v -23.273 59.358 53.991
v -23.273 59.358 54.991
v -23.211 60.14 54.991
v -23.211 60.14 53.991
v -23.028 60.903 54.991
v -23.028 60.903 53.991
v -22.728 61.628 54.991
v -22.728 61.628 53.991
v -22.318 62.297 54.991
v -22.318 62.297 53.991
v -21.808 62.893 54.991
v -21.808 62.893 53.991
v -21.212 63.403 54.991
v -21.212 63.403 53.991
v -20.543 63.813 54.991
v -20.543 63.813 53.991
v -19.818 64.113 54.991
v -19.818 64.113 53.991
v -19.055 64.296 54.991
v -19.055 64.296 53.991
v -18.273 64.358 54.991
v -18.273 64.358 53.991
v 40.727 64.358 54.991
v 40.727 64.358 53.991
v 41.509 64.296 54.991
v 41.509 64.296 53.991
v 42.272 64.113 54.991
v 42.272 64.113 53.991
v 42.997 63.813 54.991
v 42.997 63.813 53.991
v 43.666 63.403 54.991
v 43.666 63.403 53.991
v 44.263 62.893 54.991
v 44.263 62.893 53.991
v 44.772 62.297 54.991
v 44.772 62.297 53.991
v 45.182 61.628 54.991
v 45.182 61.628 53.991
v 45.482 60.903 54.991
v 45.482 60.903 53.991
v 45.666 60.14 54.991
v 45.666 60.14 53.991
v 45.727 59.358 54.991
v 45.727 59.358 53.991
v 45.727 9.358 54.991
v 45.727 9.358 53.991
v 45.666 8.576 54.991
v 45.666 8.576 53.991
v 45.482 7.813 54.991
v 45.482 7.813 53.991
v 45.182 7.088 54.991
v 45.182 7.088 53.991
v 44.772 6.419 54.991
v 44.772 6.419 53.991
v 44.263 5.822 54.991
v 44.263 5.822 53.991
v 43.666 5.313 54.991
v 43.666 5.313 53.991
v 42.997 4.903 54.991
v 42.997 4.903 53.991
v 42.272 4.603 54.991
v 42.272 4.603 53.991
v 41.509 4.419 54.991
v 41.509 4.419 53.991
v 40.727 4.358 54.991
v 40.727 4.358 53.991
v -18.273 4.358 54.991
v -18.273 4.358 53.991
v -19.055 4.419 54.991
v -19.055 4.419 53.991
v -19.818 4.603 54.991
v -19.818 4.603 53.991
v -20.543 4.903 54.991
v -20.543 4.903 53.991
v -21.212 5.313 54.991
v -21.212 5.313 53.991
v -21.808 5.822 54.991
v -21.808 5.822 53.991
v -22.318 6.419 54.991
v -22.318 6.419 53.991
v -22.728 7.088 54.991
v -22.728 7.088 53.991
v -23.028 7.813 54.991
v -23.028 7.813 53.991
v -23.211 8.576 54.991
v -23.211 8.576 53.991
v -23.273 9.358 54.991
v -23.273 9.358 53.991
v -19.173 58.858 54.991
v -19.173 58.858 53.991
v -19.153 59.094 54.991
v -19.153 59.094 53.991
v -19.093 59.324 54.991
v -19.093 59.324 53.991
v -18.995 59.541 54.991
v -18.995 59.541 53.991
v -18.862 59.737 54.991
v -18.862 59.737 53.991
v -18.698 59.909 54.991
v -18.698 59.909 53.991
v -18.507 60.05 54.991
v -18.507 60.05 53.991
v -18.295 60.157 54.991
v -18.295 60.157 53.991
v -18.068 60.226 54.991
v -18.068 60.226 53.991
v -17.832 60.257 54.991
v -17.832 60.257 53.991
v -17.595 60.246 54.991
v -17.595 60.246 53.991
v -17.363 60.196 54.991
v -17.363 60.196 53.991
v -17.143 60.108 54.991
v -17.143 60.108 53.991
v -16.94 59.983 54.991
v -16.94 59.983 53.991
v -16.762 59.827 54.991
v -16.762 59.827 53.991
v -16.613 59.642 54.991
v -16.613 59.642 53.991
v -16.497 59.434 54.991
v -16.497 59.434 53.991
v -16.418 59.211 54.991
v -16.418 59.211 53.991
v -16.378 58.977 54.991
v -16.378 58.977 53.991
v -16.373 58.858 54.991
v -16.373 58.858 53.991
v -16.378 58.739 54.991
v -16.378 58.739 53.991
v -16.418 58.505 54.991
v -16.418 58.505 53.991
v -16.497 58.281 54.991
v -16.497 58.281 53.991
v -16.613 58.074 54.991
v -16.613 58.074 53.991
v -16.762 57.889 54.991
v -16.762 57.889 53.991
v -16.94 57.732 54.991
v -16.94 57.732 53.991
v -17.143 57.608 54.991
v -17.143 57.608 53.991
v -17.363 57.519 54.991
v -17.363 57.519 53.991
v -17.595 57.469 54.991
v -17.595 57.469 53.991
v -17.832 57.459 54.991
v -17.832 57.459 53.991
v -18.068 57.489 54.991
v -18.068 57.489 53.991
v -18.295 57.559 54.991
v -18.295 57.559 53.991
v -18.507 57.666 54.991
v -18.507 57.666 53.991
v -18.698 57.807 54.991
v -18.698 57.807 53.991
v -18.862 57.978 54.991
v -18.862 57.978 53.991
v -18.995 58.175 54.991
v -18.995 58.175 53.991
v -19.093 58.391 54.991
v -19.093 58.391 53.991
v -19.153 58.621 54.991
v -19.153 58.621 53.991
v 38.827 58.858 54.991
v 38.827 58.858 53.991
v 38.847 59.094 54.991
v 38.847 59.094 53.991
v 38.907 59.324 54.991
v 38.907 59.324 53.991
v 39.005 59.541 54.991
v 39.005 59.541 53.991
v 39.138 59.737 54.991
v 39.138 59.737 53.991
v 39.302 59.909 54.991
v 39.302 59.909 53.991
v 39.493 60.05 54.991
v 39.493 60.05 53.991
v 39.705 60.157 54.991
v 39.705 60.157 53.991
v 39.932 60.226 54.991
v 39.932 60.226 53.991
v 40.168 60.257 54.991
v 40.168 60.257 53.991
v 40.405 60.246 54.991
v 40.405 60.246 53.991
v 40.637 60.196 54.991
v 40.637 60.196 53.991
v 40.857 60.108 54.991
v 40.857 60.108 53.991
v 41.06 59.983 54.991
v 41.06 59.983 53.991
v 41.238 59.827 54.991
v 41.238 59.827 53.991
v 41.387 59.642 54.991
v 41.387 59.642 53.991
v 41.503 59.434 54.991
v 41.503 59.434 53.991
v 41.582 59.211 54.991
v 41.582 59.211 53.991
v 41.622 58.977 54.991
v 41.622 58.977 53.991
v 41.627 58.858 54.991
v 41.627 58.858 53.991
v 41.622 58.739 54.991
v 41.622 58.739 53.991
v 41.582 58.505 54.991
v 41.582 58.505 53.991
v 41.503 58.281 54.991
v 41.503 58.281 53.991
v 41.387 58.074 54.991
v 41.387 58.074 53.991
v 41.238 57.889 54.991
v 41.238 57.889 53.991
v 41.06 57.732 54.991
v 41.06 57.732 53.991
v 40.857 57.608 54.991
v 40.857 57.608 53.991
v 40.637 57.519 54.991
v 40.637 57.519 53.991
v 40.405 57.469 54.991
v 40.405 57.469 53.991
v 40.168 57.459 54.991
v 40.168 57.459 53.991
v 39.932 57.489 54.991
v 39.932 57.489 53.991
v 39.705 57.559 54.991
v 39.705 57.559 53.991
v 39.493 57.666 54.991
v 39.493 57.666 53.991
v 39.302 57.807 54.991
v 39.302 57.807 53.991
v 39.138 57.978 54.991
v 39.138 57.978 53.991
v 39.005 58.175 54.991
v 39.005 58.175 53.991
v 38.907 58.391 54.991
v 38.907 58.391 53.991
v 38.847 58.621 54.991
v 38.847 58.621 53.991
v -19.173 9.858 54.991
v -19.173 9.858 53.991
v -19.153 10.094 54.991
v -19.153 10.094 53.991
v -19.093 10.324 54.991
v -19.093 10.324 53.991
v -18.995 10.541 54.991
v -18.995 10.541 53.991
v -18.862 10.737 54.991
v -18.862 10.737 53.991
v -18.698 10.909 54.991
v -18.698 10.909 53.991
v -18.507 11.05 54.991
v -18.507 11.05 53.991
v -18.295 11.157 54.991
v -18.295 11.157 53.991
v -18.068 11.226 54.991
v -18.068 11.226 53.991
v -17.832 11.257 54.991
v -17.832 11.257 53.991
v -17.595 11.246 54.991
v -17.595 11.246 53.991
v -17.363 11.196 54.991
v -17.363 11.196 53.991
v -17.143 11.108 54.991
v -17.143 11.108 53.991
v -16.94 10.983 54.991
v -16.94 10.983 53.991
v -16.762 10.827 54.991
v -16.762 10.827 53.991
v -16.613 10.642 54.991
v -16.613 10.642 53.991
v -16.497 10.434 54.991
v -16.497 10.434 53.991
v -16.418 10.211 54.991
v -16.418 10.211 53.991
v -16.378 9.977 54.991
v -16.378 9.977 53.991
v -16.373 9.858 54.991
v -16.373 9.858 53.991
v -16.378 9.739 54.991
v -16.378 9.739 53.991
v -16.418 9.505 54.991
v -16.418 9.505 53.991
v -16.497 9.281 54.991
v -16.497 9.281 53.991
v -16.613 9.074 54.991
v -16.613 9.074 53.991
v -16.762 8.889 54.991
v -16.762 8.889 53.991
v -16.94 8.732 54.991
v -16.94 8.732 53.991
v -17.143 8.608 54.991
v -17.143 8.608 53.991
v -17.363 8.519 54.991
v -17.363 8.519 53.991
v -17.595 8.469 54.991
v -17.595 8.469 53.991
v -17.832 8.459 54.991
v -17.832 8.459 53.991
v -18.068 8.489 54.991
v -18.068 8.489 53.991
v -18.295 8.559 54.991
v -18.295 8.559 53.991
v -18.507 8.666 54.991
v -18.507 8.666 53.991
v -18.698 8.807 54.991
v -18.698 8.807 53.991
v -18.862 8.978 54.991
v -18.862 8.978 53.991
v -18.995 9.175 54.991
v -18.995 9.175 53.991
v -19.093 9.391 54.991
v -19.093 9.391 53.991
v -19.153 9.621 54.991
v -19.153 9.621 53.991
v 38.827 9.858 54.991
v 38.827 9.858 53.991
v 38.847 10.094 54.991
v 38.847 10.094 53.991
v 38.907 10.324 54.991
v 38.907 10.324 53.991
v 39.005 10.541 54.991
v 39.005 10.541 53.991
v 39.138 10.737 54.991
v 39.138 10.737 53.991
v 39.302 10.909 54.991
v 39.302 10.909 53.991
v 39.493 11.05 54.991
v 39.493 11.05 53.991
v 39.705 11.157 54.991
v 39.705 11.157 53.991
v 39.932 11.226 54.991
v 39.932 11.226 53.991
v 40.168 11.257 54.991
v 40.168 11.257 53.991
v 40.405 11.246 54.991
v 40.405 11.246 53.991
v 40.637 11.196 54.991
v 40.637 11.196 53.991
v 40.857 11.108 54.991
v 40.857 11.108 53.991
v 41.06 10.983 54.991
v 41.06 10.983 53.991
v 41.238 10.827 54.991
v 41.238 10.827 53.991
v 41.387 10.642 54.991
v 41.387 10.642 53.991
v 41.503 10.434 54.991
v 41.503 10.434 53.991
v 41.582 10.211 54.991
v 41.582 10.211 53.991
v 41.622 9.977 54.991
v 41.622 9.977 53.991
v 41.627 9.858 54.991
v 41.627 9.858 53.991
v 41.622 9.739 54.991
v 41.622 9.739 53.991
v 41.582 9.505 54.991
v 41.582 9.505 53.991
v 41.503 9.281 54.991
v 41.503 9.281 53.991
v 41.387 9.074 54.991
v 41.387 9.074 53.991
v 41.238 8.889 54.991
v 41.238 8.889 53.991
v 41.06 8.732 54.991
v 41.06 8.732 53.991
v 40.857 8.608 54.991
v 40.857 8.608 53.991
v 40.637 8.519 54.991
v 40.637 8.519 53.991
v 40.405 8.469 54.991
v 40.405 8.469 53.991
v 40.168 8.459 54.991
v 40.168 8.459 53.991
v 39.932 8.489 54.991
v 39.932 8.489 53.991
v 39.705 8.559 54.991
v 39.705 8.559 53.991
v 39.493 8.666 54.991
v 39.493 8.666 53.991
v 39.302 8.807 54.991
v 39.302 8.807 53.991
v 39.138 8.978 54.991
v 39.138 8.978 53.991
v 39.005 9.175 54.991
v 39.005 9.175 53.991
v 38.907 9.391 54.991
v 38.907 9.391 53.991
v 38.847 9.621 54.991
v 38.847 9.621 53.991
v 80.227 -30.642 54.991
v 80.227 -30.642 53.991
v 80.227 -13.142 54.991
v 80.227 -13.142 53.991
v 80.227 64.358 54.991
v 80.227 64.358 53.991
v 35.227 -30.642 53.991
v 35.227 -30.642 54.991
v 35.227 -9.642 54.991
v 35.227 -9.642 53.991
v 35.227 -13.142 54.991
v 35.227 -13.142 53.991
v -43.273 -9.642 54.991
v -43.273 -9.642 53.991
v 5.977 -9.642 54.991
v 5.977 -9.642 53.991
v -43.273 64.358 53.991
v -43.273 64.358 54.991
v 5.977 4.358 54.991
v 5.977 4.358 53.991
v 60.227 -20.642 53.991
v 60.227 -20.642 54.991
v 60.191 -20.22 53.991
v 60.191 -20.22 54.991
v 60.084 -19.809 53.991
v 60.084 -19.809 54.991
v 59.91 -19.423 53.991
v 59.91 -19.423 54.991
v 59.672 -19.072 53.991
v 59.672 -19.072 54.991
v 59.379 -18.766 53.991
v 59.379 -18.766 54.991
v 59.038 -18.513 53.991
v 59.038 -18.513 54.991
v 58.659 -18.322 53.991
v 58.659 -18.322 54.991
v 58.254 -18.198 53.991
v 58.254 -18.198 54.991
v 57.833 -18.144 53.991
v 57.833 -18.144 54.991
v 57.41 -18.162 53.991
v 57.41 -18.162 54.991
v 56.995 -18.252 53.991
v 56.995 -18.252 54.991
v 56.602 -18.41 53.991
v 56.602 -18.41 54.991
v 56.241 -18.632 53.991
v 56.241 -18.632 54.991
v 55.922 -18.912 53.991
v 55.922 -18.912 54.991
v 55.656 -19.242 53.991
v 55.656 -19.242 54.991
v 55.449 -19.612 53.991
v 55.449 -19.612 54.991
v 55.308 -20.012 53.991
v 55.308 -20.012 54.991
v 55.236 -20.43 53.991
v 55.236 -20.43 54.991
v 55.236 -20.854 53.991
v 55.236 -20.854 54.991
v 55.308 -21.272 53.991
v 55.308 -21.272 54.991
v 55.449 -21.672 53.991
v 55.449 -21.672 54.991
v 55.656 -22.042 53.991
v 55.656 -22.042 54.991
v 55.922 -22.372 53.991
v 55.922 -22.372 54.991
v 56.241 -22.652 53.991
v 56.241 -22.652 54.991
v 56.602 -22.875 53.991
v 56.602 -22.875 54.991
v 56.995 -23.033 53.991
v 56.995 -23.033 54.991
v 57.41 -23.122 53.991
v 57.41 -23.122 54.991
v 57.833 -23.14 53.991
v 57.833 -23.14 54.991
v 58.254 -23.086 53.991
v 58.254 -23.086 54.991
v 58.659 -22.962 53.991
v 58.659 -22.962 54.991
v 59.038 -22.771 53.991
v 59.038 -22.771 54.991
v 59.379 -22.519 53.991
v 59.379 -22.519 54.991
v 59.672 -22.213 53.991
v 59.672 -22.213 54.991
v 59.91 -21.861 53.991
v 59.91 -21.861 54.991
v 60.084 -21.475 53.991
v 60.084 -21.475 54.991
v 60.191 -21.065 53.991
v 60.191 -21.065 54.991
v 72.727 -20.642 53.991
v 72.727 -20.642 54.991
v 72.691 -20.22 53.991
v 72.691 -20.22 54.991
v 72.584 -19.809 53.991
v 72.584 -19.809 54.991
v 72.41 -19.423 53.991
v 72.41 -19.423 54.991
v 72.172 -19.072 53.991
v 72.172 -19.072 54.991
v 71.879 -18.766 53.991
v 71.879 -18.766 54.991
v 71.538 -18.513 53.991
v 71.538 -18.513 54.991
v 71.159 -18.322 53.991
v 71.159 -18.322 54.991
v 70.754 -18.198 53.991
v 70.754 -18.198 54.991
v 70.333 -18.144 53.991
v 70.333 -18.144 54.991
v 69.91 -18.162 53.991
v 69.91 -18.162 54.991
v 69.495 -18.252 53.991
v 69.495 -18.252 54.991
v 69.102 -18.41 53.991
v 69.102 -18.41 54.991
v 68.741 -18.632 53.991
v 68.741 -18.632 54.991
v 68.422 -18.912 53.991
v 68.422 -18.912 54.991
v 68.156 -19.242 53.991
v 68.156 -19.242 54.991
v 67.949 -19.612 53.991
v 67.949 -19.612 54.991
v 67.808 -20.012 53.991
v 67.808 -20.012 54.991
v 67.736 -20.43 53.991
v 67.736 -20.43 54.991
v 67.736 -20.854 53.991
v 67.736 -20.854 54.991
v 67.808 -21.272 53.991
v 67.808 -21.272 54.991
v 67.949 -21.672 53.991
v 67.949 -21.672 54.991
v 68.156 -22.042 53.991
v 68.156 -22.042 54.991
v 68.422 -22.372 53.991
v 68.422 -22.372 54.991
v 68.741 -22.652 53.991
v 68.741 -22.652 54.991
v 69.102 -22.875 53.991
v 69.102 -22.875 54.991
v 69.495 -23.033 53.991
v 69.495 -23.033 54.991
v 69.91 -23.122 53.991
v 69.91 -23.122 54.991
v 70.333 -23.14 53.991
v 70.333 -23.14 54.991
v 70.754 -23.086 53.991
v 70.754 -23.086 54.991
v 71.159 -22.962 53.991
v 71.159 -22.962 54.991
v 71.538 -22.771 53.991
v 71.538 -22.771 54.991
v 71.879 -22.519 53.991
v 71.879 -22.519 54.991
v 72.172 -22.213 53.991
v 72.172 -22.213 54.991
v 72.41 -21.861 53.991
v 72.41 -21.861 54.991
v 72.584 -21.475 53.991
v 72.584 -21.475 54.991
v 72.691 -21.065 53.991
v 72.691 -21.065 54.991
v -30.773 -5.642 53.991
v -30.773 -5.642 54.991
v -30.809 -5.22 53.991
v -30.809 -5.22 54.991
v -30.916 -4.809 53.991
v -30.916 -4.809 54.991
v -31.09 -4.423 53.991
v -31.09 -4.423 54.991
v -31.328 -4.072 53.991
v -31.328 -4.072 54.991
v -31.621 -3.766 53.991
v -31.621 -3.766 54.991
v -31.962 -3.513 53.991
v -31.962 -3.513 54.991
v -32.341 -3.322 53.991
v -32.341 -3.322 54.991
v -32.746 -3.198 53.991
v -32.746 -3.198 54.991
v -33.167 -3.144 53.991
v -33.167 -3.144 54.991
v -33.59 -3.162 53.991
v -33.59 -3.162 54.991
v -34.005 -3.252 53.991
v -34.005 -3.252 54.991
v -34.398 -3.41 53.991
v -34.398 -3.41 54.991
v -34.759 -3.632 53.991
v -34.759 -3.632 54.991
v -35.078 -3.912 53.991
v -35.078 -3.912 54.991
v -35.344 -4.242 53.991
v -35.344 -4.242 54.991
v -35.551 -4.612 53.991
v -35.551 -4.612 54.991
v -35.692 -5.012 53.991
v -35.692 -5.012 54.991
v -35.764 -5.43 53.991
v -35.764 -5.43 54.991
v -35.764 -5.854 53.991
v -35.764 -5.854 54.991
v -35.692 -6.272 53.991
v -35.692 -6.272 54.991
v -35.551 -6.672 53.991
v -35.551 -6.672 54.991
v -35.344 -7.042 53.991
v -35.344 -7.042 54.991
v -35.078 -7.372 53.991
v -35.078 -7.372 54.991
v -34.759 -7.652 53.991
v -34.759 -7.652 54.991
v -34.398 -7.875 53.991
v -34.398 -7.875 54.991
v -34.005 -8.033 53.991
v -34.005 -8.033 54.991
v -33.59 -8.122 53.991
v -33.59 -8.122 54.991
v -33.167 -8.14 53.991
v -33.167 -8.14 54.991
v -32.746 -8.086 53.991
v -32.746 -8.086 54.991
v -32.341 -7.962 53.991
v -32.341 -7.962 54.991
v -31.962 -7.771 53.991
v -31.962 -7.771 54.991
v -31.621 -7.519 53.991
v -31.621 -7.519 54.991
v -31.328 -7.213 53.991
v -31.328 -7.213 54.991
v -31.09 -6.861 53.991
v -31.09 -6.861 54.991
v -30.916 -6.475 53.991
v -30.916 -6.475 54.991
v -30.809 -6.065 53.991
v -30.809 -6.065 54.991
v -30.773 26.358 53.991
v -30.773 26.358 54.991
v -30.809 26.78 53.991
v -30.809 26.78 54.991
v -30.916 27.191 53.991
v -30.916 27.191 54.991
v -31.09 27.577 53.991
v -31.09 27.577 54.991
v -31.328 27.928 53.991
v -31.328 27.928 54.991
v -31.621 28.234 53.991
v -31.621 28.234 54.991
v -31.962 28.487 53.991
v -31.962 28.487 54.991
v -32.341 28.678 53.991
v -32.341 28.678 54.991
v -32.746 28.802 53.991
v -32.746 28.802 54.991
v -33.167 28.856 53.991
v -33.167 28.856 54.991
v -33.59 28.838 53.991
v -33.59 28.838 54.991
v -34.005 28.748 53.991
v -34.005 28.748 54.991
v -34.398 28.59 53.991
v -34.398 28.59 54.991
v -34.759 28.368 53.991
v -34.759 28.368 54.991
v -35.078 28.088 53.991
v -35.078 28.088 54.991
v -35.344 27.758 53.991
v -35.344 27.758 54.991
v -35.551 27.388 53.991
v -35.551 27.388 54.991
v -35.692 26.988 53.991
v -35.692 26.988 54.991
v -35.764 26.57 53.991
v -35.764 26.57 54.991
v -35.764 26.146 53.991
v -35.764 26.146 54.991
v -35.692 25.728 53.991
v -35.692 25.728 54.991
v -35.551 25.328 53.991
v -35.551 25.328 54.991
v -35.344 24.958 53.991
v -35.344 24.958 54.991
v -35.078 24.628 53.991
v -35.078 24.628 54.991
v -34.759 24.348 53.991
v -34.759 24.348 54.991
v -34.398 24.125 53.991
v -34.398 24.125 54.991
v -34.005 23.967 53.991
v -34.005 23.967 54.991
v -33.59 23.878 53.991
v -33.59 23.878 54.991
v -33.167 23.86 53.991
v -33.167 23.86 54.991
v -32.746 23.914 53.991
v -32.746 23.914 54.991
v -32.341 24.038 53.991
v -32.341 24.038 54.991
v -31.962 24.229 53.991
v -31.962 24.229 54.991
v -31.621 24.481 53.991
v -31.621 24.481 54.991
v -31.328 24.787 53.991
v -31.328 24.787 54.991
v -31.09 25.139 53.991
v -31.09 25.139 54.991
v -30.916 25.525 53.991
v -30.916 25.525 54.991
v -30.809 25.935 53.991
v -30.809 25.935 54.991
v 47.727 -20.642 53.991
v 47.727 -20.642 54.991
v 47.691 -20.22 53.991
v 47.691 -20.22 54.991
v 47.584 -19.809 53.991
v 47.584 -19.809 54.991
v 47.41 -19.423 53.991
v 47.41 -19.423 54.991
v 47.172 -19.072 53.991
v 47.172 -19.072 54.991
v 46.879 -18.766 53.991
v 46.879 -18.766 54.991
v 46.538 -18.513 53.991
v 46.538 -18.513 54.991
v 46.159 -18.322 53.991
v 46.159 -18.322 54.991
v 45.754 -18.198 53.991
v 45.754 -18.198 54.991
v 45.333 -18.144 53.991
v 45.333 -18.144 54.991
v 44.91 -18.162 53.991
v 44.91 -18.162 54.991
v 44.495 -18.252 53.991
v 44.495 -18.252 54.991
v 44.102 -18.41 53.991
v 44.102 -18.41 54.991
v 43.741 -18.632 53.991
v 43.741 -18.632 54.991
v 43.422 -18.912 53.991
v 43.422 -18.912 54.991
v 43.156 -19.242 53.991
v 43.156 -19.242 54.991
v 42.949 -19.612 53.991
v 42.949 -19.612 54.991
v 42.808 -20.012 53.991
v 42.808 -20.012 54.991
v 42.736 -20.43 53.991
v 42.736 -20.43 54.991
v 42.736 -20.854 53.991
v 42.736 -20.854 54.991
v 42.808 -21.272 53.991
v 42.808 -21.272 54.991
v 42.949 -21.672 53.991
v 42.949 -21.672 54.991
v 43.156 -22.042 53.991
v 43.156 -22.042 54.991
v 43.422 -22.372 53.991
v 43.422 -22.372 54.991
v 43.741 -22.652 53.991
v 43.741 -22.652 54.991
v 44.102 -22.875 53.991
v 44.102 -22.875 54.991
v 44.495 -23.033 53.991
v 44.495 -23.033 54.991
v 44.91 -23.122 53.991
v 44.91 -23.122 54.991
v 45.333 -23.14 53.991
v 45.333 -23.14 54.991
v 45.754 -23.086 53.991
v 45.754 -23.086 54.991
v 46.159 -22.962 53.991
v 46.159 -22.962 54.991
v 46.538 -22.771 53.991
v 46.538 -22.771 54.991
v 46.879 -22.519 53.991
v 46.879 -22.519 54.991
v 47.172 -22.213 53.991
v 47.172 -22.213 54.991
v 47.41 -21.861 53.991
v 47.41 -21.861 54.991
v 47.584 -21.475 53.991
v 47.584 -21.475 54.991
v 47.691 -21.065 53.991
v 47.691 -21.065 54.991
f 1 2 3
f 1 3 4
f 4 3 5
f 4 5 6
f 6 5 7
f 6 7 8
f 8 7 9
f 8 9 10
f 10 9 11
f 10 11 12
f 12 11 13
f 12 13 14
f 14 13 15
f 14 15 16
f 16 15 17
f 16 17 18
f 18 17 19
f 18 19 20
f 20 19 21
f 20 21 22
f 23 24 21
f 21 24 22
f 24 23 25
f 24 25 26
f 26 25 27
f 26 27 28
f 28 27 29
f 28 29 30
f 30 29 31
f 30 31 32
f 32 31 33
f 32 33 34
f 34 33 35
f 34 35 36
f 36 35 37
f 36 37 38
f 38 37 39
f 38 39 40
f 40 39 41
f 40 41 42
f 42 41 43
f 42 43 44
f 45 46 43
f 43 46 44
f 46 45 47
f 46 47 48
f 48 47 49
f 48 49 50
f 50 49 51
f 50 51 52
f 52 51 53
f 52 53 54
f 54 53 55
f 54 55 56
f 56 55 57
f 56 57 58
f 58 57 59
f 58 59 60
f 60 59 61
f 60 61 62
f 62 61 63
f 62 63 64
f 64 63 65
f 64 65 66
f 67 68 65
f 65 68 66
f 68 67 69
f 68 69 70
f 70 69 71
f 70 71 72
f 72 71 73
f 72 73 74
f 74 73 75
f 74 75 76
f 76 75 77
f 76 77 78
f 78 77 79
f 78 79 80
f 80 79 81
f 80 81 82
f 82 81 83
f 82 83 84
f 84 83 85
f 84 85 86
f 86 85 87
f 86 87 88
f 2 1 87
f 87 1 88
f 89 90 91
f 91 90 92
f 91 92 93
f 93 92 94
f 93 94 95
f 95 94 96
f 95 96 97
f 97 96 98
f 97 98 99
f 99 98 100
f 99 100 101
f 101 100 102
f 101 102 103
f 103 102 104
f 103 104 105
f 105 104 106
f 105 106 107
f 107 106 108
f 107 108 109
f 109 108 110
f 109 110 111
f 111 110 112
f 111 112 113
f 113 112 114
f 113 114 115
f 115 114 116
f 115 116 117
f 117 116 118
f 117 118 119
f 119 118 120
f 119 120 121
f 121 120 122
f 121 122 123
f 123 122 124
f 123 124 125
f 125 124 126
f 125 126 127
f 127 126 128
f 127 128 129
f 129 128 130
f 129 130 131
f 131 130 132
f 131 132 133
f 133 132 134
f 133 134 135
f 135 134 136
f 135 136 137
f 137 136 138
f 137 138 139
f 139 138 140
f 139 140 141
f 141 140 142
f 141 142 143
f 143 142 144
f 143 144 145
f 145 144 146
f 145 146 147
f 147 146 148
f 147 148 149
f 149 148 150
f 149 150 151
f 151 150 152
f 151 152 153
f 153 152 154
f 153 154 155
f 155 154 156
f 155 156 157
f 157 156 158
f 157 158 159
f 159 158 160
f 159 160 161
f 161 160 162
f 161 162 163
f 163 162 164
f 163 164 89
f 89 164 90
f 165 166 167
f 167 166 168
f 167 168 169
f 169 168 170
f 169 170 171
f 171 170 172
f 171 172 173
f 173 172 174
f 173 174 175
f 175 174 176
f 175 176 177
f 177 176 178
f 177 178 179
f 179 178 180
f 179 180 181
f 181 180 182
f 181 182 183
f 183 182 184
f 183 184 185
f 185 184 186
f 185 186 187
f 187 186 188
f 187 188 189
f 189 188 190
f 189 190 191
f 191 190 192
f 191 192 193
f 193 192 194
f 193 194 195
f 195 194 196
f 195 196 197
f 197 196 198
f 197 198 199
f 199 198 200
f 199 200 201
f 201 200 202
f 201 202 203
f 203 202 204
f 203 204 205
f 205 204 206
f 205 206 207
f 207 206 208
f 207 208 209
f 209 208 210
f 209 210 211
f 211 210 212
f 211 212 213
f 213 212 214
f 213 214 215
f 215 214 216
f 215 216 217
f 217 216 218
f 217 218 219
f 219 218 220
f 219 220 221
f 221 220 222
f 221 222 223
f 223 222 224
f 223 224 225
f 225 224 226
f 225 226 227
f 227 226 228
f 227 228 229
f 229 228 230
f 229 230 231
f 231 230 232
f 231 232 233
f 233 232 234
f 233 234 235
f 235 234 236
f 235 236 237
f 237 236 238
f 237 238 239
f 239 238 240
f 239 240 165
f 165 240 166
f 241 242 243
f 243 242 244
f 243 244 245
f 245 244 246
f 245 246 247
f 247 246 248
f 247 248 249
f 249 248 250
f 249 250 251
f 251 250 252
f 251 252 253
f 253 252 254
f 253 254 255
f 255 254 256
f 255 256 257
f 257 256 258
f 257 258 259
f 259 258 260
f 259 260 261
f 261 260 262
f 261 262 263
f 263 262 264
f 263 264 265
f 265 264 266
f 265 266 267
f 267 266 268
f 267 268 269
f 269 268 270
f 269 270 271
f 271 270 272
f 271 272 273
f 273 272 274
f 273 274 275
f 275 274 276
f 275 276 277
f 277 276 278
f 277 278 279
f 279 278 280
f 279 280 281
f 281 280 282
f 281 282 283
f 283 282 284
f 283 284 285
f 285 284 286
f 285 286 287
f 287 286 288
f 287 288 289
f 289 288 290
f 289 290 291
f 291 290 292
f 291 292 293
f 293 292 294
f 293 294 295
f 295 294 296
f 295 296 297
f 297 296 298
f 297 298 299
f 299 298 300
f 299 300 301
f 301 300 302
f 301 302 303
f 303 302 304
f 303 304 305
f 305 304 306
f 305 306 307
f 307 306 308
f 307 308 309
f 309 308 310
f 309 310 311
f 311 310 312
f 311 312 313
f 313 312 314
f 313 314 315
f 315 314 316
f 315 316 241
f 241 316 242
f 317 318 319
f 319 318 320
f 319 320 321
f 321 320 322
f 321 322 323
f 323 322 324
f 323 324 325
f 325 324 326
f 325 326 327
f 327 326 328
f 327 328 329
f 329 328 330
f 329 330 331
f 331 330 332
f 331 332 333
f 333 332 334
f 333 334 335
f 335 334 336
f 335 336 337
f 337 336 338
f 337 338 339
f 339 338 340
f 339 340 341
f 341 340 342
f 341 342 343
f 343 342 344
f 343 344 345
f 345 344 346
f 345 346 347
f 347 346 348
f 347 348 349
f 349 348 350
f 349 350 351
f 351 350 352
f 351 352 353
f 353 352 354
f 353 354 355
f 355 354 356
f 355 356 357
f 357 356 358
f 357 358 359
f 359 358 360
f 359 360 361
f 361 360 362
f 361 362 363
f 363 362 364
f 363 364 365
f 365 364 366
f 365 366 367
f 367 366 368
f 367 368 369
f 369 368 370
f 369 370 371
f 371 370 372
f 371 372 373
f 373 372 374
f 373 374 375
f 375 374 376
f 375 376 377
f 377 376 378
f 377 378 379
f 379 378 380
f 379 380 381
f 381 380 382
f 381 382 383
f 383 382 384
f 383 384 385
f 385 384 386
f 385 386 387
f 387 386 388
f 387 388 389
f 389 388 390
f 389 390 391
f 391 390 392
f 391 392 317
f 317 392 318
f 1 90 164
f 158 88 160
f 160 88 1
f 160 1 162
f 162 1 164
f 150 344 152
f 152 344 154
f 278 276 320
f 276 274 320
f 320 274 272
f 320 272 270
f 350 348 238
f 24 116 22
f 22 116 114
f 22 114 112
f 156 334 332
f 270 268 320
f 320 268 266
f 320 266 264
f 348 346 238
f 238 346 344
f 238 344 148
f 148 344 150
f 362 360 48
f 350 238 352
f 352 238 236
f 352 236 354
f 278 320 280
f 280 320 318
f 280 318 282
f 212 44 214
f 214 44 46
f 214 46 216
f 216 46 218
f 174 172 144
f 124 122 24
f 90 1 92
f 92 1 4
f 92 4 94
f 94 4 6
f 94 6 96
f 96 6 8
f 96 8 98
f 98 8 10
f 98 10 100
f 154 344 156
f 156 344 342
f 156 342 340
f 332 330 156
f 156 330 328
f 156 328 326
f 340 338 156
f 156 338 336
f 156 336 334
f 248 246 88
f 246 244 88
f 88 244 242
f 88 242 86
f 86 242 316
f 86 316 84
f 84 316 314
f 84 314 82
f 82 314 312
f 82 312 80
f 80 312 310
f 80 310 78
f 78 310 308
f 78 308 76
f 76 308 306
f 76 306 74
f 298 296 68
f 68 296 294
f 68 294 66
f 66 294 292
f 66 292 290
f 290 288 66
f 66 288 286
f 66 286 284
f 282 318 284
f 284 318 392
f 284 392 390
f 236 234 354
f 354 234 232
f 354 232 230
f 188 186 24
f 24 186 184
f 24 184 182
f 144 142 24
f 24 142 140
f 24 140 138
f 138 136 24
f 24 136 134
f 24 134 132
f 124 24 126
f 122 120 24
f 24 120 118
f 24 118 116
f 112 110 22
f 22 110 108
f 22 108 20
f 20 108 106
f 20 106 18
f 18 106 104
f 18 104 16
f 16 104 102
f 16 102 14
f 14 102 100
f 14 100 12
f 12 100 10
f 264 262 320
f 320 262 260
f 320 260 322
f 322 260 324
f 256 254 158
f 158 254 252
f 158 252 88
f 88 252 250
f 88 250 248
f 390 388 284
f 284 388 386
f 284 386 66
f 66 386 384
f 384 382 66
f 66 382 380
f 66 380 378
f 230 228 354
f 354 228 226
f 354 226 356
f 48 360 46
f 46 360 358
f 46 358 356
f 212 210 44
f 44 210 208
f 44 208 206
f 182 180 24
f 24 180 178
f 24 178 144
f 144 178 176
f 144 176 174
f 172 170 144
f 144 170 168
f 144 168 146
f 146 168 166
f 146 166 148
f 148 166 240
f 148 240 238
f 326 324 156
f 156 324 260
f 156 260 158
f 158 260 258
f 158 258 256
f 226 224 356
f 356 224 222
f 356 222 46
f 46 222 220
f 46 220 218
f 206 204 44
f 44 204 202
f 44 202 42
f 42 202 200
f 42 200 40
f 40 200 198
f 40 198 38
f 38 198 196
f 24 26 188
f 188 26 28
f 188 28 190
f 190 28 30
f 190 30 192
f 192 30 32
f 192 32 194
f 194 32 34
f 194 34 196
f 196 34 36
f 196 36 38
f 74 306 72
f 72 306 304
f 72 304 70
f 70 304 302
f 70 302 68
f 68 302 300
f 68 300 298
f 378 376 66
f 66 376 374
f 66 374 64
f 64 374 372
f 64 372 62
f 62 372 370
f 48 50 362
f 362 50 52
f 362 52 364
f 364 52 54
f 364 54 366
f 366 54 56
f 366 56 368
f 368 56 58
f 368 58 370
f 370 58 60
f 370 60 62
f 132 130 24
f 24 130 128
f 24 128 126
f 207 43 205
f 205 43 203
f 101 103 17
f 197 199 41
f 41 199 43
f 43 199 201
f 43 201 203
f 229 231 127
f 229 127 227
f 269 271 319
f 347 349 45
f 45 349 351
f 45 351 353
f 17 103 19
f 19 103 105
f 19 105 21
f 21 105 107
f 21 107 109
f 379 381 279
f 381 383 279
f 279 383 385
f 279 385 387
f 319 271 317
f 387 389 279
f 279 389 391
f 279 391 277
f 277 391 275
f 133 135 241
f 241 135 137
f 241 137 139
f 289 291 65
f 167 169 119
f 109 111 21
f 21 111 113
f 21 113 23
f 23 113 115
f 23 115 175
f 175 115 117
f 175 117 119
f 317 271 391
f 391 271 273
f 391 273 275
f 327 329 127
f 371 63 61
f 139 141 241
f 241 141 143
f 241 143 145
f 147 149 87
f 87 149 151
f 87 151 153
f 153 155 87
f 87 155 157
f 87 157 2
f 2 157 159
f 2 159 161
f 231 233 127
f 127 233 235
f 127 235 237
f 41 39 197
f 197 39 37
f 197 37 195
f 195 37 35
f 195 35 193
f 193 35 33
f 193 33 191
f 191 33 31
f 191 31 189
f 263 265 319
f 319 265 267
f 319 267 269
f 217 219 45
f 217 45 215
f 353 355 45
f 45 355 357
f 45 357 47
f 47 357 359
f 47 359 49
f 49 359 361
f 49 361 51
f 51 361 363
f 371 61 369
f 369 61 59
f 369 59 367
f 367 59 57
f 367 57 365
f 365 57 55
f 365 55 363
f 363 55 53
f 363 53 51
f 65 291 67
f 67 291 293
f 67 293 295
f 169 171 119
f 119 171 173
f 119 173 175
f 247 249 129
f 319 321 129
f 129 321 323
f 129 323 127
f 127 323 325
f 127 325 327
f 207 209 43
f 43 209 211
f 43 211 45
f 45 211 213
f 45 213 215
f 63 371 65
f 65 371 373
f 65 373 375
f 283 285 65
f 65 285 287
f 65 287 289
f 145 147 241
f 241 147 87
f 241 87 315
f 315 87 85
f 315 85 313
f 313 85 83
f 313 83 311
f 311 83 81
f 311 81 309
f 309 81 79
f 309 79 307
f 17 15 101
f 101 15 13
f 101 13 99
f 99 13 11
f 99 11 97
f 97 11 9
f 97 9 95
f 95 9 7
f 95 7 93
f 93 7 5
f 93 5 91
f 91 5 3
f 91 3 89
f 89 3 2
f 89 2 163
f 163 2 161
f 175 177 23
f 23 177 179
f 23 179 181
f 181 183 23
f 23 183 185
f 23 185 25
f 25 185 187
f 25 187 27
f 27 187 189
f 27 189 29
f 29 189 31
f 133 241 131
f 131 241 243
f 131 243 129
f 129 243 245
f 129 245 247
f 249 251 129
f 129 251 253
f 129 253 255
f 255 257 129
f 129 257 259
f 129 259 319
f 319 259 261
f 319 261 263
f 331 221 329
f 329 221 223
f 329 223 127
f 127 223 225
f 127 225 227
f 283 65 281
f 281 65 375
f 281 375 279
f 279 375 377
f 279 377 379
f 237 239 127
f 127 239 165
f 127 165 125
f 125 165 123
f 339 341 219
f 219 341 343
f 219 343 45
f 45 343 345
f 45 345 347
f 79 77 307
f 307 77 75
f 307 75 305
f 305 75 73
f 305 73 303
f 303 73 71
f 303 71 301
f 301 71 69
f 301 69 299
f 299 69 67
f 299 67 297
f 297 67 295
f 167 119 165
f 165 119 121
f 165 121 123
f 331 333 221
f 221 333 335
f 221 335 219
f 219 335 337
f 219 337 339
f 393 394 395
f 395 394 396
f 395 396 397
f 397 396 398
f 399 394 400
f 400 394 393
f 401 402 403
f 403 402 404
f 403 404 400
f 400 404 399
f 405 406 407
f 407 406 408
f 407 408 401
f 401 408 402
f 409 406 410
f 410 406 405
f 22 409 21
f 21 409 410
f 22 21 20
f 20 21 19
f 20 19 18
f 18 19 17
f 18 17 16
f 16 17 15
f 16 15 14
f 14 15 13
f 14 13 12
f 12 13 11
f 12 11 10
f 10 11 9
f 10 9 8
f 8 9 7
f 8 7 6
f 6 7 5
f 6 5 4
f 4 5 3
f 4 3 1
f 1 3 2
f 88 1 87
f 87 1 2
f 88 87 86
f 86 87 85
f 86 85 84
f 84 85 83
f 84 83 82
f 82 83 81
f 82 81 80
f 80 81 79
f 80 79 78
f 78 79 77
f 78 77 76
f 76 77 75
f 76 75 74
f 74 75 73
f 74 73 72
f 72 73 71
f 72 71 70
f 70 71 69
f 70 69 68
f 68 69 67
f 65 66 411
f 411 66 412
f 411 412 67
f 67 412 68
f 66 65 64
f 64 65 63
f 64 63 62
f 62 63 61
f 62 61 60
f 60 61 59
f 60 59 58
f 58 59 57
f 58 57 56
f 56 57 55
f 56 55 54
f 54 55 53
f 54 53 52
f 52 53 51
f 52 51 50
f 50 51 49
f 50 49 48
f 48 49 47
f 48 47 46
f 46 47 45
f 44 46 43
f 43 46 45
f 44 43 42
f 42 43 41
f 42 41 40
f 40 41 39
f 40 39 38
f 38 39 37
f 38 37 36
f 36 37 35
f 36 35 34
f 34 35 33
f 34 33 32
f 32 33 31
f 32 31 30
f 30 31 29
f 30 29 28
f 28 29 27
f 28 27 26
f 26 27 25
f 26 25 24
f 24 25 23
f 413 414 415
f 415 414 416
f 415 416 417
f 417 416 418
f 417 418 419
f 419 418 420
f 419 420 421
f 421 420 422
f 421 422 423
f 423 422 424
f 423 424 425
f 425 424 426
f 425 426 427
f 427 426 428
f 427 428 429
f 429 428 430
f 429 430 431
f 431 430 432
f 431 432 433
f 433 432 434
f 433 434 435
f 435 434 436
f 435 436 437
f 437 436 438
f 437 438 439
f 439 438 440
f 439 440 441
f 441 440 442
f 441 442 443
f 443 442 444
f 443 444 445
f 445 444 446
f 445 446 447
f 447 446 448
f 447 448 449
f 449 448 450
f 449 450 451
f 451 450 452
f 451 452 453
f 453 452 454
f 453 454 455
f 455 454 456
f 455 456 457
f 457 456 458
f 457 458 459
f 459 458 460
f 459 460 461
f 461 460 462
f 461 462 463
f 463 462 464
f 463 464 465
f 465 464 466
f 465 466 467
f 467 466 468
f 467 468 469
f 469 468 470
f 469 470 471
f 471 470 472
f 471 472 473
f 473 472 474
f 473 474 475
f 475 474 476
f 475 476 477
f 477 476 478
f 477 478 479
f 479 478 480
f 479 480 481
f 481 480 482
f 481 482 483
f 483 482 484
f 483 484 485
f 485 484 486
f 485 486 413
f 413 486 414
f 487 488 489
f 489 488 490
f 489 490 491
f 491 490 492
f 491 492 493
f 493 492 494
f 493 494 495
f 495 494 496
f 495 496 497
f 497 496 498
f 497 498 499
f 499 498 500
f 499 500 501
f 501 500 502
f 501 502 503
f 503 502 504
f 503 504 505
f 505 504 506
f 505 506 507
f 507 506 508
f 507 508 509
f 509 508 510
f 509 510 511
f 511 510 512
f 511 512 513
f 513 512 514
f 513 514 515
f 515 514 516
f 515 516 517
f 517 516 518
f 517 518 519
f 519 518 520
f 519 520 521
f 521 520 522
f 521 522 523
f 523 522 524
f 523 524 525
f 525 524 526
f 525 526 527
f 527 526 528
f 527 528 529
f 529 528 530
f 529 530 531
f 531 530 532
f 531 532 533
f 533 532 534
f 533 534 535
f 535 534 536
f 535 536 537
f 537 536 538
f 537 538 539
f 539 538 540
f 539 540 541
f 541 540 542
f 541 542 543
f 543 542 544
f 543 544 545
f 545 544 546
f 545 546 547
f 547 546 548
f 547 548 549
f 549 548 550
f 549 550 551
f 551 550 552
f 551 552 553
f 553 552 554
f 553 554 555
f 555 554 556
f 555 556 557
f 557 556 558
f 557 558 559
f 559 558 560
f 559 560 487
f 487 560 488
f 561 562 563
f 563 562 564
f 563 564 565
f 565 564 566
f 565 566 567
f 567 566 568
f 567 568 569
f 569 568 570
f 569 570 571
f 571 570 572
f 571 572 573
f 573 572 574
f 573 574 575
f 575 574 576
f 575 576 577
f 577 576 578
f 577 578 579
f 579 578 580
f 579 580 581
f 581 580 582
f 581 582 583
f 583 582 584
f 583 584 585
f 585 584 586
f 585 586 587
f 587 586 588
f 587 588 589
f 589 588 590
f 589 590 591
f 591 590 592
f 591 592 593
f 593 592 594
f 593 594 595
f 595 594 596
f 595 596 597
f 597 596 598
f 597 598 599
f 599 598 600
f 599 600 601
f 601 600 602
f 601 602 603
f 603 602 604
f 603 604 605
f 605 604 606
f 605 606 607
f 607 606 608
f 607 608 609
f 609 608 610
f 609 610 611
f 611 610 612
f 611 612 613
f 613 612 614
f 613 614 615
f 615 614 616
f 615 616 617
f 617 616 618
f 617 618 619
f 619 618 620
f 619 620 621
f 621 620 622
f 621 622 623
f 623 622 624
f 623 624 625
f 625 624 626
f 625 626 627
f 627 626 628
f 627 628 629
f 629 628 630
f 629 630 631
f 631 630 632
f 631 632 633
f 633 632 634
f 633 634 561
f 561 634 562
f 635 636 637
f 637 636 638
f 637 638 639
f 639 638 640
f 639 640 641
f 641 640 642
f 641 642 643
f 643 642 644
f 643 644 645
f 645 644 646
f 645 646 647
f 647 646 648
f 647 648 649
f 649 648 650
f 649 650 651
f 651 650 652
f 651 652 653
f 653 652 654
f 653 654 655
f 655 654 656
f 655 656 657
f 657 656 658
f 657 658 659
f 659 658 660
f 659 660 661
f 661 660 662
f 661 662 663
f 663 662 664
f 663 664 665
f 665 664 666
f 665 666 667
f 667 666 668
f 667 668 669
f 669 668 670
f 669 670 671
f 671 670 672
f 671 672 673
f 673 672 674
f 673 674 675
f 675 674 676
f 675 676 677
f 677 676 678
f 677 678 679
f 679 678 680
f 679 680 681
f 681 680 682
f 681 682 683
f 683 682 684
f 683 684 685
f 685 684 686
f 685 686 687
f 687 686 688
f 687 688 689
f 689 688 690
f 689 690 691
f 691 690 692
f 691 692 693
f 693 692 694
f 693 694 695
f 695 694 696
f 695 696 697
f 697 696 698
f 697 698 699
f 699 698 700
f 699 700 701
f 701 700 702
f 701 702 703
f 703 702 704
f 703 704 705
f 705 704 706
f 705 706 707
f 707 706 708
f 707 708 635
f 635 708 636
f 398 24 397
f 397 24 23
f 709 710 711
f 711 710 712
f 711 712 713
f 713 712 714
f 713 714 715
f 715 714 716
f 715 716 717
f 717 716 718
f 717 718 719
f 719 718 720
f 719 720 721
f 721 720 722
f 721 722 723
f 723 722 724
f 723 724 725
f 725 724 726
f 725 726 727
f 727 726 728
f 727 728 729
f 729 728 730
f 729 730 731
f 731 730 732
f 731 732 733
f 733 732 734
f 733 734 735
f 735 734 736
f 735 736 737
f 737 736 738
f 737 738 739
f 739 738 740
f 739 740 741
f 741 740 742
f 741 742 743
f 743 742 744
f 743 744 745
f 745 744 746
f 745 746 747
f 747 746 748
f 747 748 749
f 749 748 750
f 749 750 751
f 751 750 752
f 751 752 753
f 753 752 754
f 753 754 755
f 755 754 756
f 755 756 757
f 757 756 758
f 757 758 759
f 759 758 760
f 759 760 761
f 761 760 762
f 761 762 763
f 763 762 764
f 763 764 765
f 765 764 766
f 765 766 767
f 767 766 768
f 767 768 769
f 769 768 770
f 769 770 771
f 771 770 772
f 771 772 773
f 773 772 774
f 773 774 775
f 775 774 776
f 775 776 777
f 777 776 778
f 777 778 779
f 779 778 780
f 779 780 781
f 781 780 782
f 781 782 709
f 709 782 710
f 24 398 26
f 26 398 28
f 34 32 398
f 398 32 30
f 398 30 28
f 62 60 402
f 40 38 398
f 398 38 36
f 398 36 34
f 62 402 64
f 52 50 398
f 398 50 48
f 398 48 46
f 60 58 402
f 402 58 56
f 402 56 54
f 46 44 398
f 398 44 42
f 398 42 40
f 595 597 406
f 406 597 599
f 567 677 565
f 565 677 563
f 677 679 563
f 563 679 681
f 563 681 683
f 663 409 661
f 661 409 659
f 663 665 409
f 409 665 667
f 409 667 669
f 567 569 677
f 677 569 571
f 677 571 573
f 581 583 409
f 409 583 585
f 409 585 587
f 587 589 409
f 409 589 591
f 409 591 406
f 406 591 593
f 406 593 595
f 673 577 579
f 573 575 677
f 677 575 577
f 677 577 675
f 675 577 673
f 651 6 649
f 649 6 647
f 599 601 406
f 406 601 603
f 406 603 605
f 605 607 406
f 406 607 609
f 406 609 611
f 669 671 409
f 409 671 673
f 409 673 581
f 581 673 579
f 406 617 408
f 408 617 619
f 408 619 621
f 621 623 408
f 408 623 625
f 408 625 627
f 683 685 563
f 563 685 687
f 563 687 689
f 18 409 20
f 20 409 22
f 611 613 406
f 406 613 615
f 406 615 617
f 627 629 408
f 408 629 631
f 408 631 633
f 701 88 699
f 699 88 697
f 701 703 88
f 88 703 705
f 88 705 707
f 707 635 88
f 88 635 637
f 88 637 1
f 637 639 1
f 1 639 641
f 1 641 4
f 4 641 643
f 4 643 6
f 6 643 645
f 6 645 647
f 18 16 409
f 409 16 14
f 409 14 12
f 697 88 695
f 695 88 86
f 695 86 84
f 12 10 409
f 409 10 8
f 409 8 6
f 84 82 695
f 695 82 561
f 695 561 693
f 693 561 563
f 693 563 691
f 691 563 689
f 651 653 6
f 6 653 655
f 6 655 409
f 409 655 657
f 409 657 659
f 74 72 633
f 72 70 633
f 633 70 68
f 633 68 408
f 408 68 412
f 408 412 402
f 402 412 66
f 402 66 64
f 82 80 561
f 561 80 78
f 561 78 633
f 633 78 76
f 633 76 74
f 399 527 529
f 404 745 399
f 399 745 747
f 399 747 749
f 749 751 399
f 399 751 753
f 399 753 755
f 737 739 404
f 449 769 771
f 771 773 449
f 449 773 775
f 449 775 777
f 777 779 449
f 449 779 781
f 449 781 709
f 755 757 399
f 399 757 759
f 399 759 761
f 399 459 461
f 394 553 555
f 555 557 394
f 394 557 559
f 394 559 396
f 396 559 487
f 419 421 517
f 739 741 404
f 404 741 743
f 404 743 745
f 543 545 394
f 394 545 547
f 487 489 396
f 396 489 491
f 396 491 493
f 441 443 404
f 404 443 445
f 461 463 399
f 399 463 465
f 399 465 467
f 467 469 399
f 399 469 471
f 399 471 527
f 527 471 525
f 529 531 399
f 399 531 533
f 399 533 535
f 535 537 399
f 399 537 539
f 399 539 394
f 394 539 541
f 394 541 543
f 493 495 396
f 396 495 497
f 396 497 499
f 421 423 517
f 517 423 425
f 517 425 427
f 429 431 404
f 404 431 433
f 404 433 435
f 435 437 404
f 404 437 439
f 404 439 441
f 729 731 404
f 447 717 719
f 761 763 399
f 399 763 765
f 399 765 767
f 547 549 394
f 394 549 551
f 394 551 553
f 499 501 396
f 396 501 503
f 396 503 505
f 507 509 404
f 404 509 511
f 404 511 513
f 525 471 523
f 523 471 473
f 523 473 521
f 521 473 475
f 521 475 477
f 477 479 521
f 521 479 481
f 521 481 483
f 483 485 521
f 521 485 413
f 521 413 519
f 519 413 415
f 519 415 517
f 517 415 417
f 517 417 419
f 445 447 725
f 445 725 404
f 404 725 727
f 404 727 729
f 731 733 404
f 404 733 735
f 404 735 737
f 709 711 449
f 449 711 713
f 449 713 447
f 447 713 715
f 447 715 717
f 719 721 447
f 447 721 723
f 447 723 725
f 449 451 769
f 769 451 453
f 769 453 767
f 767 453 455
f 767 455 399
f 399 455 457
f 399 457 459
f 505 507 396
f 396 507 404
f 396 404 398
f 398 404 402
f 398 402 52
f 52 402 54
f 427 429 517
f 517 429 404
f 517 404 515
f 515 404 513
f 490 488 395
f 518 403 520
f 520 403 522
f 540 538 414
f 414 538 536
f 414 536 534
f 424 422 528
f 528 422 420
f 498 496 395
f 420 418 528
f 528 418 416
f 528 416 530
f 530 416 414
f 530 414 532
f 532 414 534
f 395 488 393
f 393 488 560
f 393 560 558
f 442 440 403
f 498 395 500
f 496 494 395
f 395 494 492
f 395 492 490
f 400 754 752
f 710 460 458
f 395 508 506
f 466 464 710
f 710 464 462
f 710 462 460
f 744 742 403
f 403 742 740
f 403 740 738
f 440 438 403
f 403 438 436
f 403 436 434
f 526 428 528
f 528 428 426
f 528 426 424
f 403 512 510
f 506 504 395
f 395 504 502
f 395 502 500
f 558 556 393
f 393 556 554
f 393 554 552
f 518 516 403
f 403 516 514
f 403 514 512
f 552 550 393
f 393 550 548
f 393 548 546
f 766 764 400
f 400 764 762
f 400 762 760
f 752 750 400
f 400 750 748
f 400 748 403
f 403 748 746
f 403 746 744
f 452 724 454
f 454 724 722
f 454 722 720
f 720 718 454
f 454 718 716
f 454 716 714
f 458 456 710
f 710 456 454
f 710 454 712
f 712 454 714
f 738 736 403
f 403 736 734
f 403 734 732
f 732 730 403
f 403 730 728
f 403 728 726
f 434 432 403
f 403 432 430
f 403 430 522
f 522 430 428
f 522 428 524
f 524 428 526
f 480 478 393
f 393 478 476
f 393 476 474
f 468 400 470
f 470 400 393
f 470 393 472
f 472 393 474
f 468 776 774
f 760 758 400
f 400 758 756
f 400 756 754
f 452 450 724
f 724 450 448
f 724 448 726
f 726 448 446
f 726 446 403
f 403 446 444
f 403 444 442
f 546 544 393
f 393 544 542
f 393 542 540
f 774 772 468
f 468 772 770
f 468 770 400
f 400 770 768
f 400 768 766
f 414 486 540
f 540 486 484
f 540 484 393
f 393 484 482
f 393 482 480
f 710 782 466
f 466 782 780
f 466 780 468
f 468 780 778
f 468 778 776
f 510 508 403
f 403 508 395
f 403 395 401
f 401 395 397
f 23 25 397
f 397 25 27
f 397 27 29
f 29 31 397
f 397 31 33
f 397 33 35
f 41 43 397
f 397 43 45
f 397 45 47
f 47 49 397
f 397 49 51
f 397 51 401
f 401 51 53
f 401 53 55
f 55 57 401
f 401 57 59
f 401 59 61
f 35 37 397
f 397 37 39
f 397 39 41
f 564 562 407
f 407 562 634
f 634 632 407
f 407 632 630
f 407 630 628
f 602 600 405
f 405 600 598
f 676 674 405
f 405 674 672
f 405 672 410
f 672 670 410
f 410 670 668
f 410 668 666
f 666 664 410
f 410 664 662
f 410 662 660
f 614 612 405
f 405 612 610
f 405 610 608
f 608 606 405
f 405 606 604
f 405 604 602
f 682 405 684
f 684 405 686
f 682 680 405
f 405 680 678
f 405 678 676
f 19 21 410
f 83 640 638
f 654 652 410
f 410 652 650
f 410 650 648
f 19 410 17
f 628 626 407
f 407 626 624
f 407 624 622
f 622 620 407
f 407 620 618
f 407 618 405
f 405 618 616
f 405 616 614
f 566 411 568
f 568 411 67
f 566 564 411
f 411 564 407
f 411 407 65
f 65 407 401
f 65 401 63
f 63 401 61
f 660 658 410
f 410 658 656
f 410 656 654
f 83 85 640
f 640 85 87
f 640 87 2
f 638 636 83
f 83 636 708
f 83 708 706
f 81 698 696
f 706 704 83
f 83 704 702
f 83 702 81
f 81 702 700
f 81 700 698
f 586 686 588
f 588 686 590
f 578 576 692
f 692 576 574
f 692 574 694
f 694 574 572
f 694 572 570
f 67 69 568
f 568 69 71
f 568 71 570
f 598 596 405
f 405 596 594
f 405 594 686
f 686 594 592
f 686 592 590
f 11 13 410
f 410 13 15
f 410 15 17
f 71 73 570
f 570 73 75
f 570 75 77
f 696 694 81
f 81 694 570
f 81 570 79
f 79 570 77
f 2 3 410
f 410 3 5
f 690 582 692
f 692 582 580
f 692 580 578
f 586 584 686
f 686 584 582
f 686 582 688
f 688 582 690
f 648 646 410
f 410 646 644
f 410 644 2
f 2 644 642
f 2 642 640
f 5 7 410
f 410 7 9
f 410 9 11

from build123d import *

# Parameters (mm, degrees)
BOSS_EXTRUDE1_DEPTH      = 6.5
BOSS_EXTRUDE1_DEPTH_BACK = 1
SKETCH5_R                = 3
SKETCH5_R_2              = 1.4
BOSS_EXTRUDE5_DEPTH      = 3.2
BOSS_EXTRUDE5_2_DEPTH    = 3.2
BOSS_EXTRUDE5_3_DEPTH    = 3.2
BOSS_EXTRUDE5_4_DEPTH    = 3.2
BOSS_EXTRUDE6_START      = -1.3
BOSS_EXTRUDE6_DEPTH      = 1.3
CUT_EXTRUDE9_START       = -1.5
SKETCH17_R               = 1.4
CUT_EXTRUDE9_DEPTH       = 1.5
CUT_EXTRUDE10_DEPTH      = 10
CUT_EXTRUDE10_DEPTH_BACK = 3.5
SKETCH18_W               = 118.483225972
SKETCH18_H               = 113.092379331
SKETCH23_R               = 2.5
BOSS_EXTRUDE7_DEPTH      = 1


with BuildPart() as part:
    # Sketch3 → Boss-Extrude1 (new, two sides: drawn at the far end of the back side and taken through both)
    with BuildSketch(Plane.XY.offset(55.290865561).offset(-BOSS_EXTRUDE1_DEPTH_BACK)):
        with BuildLine():
            Line((-23.272824317, 59.357808031), (-23.272824317, 9.357808031))
            ThreePointArc((-23.272824317, 9.357808031), (-21.808358223, 5.822274126), (-18.272824317, 4.357808031))
            Line((-18.272824317, 4.357808031), (40.727175683, 4.357808031))
            ThreePointArc((40.727175683, 4.357808031), (44.262709589, 5.822274126), (45.727175683, 9.357808031))
            Line((45.727175683, 9.357808031), (45.727175683, 59.357808031))
            ThreePointArc((45.727175683, 59.357808031), (44.262709589, 62.893341937), (40.727175683, 64.357808031))
            Line((40.727175683, 64.357808031), (-18.272824317, 64.357808031))
            ThreePointArc((-18.272824317, 64.357808031), (-21.808358223, 62.893341937), (-23.272824317, 59.357808031))
        make_face()
        with BuildLine():
            Line((40.727175683, 62.857808031), (-18.272824317, 62.857808031))
            ThreePointArc((-18.272824317, 62.857808031), (-20.747698051, 61.832681766), (-21.772824317, 59.357808031))
            Line((-21.772824317, 59.357808031), (-21.772824317, 9.357808031))
            ThreePointArc((-21.772824317, 9.357808031), (-20.747698051, 6.882934297), (-18.272824317, 5.857808031))
            Line((-18.272824317, 5.857808031), (40.727175683, 5.857808031))
            ThreePointArc((40.727175683, 5.857808031), (43.202049418, 6.882934297), (44.227175683, 9.357808031))
            Line((44.227175683, 9.357808031), (44.227175683, 59.357808031))
            ThreePointArc((44.227175683, 59.357808031), (43.202049418, 61.832681766), (40.727175683, 62.857808031))
        make_face(mode=Mode.SUBTRACT)
    extrude(amount=BOSS_EXTRUDE1_DEPTH + BOSS_EXTRUDE1_DEPTH_BACK)



with BuildPart() as body_2:
    # Sketch5 → Boss-Extrude5 (new body)
    with BuildSketch(Plane.XY.offset(55.290865561)):
        with Locations((-17.772824317, 58.857808031)):
            Circle(SKETCH5_R)
        with Locations(Location((-17.772824317, 58.857808031, 0), (0, 0, 180))):
            Circle(SKETCH5_R_2, mode=Mode.SUBTRACT)
    extrude(amount=BOSS_EXTRUDE5_DEPTH)


with BuildPart() as body_3:
    # Sketch5 → Boss-Extrude5 2 (new body)
    with BuildSketch(Plane.XY.offset(55.290865561)):
        with Locations(Location((40.227175683, 58.857808031, 0), (0, 0, 180))):
            Circle(SKETCH5_R)
        with Locations((40.227175683, 58.857808031)):
            Circle(SKETCH5_R_2, mode=Mode.SUBTRACT)
    extrude(amount=BOSS_EXTRUDE5_2_DEPTH)


with BuildPart() as body_4:
    # Sketch5 → Boss-Extrude5 3 (new body)
    with BuildSketch(Plane.XY.offset(55.290865561)):
        with Locations(Location((-17.772824317, 9.857808031, 0), (0, 0, 180))):
            Circle(SKETCH5_R)
        with Locations((-17.772824317, 9.857808031)):
            Circle(SKETCH5_R_2, mode=Mode.SUBTRACT)
    extrude(amount=BOSS_EXTRUDE5_3_DEPTH)


with BuildPart() as body_5:
    # Sketch5 → Boss-Extrude5 4 (new body)
    with BuildSketch(Plane.XY.offset(55.290865561)):
        with Locations((40.227175683, 9.857808031)):
            Circle(SKETCH5_R)
        with Locations(Location((40.227175683, 9.857808031, 0), (0, 0, 180))):
            Circle(SKETCH5_R_2, mode=Mode.SUBTRACT)
    extrude(amount=BOSS_EXTRUDE5_4_DEPTH)


with BuildPart() as part_1:
    add(part.part)

    add(body_2.part)  # Boss-Extrude6 merges body 2

    add(body_3.part)  # Boss-Extrude6 merges body 3

    add(body_4.part)  # Boss-Extrude6 merges body 4

    add(body_5.part)  # Boss-Extrude6 merges body 5
    # Sketch13 → Boss-Extrude6 (add)
    with BuildSketch(Plane.XY.offset(55.290865561).offset(BOSS_EXTRUDE6_START)):
        with BuildLine():
            Line((-23.272824317, 26.657808031), (-23.272824317, 42.657808031))
            Line((-23.272824317, 42.657808031), (-23.272824317, 59.357808031))
            ThreePointArc((-23.272824317, 59.357808031), (-21.808358223, 62.893341937), (-18.272824317, 64.357808031))
            Line((-18.272824317, 64.357808031), (40.727175683, 64.357808031))
            ThreePointArc((40.727175683, 64.357808031), (44.262709589, 62.893341937), (45.727175683, 59.357808031))
            Line((45.727175683, 59.357808031), (45.727175683, 9.357808031))
            ThreePointArc((45.727175683, 9.357808031), (44.262709589, 5.822274126), (40.727175683, 4.357808031))
            Line((40.727175683, 4.357808031), (-18.272824317, 4.357808031))
            ThreePointArc((-18.272824317, 4.357808031), (-21.808358223, 5.822274126), (-23.272824317, 9.357808031))
            Line((-23.272824317, 9.357808031), (-23.272824317, 26.657808031))
        make_face()
    extrude(amount=BOSS_EXTRUDE6_DEPTH)

    # Sketch17 → Cut-Extrude9 (cut)
    with BuildSketch(Plane.XY.offset(55.290865561).offset(CUT_EXTRUDE9_START)):
        with Locations(Location((40.227175683, 9.857808031, 0), (0, 0, 180))):
            Circle(SKETCH17_R)
        with Locations((-17.772824317, 9.857808031)):
            Circle(SKETCH17_R)
        with Locations(Location((-17.772824317, 58.857808031, 0), (0, 0, 180))):
            Circle(SKETCH17_R)
        with Locations((40.227175683, 58.857808031)):
            Circle(SKETCH17_R)
    extrude(amount=CUT_EXTRUDE9_DEPTH, mode=Mode.SUBTRACT)

    # Sketch18 → Cut-Extrude10 (cut, two sides: drawn at the far end of the back side and taken through both)
    with BuildSketch(Plane.XY.offset(58.490865561).offset(-CUT_EXTRUDE10_DEPTH_BACK)):
        with Locations((8.738192824, 45.025275568)):
            Rectangle(SKETCH18_W, SKETCH18_H)
    extrude(amount=CUT_EXTRUDE10_DEPTH + CUT_EXTRUDE10_DEPTH_BACK, mode=Mode.SUBTRACT)


with BuildPart() as body_2_2:
    # Sketch23 → Boss-Extrude7 (new body)
    with BuildSketch(Plane.XY.offset(54.990865561)):
        with BuildLine():
            Line((-18.272824317, 64.357808031), (-43.272824317, 64.357808031))
            Line((-43.272824317, 64.357808031), (-43.272824317, -9.642191969))
            Line((-43.272824317, -9.642191969), (35.227175683, -9.642191969))
            Line((35.227175683, -9.642191969), (35.227175683, -30.642191969))
            Line((35.227175683, -30.642191969), (80.227175683, -30.642191969))
            Line((80.227175683, -30.642191969), (80.227175683, 64.357808031))
            Line((80.227175683, 64.357808031), (40.727175683, 64.357808031))
            ThreePointArc((40.727175683, 64.357808031), (44.262709589, 62.893341937), (45.727175683, 59.357808031))
            Line((45.727175683, 59.357808031), (45.727175683, 9.357808031))
            ThreePointArc((45.727175683, 9.357808031), (44.262709589, 5.822274126), (40.727175683, 4.357808031))
            Line((40.727175683, 4.357808031), (-18.272824317, 4.357808031))
            ThreePointArc((-18.272824317, 4.357808031), (-21.808358223, 5.822274126), (-23.272824317, 9.357808031))
            Line((-23.272824317, 9.357808031), (-23.272824317, 59.357808031))
            ThreePointArc((-23.272824317, 59.357808031), (-21.808358223, 62.893341937), (-18.272824317, 64.357808031))
        make_face()
        with Locations((-33.272824317, -5.642191969)):
            Circle(SKETCH23_R, mode=Mode.SUBTRACT)
        with Locations((45.227175683, -20.642191969)):
            Circle(SKETCH23_R, mode=Mode.SUBTRACT)
        with BuildLine():
            ThreePointArc((55.227175683, -20.642191969), (57.727175683, -18.142191969), (60.227175683, -20.642191969))
            ThreePointArc((60.227175683, -20.642191969), (57.727175683, -23.142191969), (55.227175683, -20.642191969))
        make_face(mode=Mode.SUBTRACT)
        with Locations((70.227175683, -20.642191969)):
            Circle(SKETCH23_R, mode=Mode.SUBTRACT)
        with Locations((-33.272824317, 26.357808031)):
            Circle(SKETCH23_R, mode=Mode.SUBTRACT)
    extrude(amount=-BOSS_EXTRUDE7_DEPTH)


solid = Compound([part_1.part, body_2_2.part])
